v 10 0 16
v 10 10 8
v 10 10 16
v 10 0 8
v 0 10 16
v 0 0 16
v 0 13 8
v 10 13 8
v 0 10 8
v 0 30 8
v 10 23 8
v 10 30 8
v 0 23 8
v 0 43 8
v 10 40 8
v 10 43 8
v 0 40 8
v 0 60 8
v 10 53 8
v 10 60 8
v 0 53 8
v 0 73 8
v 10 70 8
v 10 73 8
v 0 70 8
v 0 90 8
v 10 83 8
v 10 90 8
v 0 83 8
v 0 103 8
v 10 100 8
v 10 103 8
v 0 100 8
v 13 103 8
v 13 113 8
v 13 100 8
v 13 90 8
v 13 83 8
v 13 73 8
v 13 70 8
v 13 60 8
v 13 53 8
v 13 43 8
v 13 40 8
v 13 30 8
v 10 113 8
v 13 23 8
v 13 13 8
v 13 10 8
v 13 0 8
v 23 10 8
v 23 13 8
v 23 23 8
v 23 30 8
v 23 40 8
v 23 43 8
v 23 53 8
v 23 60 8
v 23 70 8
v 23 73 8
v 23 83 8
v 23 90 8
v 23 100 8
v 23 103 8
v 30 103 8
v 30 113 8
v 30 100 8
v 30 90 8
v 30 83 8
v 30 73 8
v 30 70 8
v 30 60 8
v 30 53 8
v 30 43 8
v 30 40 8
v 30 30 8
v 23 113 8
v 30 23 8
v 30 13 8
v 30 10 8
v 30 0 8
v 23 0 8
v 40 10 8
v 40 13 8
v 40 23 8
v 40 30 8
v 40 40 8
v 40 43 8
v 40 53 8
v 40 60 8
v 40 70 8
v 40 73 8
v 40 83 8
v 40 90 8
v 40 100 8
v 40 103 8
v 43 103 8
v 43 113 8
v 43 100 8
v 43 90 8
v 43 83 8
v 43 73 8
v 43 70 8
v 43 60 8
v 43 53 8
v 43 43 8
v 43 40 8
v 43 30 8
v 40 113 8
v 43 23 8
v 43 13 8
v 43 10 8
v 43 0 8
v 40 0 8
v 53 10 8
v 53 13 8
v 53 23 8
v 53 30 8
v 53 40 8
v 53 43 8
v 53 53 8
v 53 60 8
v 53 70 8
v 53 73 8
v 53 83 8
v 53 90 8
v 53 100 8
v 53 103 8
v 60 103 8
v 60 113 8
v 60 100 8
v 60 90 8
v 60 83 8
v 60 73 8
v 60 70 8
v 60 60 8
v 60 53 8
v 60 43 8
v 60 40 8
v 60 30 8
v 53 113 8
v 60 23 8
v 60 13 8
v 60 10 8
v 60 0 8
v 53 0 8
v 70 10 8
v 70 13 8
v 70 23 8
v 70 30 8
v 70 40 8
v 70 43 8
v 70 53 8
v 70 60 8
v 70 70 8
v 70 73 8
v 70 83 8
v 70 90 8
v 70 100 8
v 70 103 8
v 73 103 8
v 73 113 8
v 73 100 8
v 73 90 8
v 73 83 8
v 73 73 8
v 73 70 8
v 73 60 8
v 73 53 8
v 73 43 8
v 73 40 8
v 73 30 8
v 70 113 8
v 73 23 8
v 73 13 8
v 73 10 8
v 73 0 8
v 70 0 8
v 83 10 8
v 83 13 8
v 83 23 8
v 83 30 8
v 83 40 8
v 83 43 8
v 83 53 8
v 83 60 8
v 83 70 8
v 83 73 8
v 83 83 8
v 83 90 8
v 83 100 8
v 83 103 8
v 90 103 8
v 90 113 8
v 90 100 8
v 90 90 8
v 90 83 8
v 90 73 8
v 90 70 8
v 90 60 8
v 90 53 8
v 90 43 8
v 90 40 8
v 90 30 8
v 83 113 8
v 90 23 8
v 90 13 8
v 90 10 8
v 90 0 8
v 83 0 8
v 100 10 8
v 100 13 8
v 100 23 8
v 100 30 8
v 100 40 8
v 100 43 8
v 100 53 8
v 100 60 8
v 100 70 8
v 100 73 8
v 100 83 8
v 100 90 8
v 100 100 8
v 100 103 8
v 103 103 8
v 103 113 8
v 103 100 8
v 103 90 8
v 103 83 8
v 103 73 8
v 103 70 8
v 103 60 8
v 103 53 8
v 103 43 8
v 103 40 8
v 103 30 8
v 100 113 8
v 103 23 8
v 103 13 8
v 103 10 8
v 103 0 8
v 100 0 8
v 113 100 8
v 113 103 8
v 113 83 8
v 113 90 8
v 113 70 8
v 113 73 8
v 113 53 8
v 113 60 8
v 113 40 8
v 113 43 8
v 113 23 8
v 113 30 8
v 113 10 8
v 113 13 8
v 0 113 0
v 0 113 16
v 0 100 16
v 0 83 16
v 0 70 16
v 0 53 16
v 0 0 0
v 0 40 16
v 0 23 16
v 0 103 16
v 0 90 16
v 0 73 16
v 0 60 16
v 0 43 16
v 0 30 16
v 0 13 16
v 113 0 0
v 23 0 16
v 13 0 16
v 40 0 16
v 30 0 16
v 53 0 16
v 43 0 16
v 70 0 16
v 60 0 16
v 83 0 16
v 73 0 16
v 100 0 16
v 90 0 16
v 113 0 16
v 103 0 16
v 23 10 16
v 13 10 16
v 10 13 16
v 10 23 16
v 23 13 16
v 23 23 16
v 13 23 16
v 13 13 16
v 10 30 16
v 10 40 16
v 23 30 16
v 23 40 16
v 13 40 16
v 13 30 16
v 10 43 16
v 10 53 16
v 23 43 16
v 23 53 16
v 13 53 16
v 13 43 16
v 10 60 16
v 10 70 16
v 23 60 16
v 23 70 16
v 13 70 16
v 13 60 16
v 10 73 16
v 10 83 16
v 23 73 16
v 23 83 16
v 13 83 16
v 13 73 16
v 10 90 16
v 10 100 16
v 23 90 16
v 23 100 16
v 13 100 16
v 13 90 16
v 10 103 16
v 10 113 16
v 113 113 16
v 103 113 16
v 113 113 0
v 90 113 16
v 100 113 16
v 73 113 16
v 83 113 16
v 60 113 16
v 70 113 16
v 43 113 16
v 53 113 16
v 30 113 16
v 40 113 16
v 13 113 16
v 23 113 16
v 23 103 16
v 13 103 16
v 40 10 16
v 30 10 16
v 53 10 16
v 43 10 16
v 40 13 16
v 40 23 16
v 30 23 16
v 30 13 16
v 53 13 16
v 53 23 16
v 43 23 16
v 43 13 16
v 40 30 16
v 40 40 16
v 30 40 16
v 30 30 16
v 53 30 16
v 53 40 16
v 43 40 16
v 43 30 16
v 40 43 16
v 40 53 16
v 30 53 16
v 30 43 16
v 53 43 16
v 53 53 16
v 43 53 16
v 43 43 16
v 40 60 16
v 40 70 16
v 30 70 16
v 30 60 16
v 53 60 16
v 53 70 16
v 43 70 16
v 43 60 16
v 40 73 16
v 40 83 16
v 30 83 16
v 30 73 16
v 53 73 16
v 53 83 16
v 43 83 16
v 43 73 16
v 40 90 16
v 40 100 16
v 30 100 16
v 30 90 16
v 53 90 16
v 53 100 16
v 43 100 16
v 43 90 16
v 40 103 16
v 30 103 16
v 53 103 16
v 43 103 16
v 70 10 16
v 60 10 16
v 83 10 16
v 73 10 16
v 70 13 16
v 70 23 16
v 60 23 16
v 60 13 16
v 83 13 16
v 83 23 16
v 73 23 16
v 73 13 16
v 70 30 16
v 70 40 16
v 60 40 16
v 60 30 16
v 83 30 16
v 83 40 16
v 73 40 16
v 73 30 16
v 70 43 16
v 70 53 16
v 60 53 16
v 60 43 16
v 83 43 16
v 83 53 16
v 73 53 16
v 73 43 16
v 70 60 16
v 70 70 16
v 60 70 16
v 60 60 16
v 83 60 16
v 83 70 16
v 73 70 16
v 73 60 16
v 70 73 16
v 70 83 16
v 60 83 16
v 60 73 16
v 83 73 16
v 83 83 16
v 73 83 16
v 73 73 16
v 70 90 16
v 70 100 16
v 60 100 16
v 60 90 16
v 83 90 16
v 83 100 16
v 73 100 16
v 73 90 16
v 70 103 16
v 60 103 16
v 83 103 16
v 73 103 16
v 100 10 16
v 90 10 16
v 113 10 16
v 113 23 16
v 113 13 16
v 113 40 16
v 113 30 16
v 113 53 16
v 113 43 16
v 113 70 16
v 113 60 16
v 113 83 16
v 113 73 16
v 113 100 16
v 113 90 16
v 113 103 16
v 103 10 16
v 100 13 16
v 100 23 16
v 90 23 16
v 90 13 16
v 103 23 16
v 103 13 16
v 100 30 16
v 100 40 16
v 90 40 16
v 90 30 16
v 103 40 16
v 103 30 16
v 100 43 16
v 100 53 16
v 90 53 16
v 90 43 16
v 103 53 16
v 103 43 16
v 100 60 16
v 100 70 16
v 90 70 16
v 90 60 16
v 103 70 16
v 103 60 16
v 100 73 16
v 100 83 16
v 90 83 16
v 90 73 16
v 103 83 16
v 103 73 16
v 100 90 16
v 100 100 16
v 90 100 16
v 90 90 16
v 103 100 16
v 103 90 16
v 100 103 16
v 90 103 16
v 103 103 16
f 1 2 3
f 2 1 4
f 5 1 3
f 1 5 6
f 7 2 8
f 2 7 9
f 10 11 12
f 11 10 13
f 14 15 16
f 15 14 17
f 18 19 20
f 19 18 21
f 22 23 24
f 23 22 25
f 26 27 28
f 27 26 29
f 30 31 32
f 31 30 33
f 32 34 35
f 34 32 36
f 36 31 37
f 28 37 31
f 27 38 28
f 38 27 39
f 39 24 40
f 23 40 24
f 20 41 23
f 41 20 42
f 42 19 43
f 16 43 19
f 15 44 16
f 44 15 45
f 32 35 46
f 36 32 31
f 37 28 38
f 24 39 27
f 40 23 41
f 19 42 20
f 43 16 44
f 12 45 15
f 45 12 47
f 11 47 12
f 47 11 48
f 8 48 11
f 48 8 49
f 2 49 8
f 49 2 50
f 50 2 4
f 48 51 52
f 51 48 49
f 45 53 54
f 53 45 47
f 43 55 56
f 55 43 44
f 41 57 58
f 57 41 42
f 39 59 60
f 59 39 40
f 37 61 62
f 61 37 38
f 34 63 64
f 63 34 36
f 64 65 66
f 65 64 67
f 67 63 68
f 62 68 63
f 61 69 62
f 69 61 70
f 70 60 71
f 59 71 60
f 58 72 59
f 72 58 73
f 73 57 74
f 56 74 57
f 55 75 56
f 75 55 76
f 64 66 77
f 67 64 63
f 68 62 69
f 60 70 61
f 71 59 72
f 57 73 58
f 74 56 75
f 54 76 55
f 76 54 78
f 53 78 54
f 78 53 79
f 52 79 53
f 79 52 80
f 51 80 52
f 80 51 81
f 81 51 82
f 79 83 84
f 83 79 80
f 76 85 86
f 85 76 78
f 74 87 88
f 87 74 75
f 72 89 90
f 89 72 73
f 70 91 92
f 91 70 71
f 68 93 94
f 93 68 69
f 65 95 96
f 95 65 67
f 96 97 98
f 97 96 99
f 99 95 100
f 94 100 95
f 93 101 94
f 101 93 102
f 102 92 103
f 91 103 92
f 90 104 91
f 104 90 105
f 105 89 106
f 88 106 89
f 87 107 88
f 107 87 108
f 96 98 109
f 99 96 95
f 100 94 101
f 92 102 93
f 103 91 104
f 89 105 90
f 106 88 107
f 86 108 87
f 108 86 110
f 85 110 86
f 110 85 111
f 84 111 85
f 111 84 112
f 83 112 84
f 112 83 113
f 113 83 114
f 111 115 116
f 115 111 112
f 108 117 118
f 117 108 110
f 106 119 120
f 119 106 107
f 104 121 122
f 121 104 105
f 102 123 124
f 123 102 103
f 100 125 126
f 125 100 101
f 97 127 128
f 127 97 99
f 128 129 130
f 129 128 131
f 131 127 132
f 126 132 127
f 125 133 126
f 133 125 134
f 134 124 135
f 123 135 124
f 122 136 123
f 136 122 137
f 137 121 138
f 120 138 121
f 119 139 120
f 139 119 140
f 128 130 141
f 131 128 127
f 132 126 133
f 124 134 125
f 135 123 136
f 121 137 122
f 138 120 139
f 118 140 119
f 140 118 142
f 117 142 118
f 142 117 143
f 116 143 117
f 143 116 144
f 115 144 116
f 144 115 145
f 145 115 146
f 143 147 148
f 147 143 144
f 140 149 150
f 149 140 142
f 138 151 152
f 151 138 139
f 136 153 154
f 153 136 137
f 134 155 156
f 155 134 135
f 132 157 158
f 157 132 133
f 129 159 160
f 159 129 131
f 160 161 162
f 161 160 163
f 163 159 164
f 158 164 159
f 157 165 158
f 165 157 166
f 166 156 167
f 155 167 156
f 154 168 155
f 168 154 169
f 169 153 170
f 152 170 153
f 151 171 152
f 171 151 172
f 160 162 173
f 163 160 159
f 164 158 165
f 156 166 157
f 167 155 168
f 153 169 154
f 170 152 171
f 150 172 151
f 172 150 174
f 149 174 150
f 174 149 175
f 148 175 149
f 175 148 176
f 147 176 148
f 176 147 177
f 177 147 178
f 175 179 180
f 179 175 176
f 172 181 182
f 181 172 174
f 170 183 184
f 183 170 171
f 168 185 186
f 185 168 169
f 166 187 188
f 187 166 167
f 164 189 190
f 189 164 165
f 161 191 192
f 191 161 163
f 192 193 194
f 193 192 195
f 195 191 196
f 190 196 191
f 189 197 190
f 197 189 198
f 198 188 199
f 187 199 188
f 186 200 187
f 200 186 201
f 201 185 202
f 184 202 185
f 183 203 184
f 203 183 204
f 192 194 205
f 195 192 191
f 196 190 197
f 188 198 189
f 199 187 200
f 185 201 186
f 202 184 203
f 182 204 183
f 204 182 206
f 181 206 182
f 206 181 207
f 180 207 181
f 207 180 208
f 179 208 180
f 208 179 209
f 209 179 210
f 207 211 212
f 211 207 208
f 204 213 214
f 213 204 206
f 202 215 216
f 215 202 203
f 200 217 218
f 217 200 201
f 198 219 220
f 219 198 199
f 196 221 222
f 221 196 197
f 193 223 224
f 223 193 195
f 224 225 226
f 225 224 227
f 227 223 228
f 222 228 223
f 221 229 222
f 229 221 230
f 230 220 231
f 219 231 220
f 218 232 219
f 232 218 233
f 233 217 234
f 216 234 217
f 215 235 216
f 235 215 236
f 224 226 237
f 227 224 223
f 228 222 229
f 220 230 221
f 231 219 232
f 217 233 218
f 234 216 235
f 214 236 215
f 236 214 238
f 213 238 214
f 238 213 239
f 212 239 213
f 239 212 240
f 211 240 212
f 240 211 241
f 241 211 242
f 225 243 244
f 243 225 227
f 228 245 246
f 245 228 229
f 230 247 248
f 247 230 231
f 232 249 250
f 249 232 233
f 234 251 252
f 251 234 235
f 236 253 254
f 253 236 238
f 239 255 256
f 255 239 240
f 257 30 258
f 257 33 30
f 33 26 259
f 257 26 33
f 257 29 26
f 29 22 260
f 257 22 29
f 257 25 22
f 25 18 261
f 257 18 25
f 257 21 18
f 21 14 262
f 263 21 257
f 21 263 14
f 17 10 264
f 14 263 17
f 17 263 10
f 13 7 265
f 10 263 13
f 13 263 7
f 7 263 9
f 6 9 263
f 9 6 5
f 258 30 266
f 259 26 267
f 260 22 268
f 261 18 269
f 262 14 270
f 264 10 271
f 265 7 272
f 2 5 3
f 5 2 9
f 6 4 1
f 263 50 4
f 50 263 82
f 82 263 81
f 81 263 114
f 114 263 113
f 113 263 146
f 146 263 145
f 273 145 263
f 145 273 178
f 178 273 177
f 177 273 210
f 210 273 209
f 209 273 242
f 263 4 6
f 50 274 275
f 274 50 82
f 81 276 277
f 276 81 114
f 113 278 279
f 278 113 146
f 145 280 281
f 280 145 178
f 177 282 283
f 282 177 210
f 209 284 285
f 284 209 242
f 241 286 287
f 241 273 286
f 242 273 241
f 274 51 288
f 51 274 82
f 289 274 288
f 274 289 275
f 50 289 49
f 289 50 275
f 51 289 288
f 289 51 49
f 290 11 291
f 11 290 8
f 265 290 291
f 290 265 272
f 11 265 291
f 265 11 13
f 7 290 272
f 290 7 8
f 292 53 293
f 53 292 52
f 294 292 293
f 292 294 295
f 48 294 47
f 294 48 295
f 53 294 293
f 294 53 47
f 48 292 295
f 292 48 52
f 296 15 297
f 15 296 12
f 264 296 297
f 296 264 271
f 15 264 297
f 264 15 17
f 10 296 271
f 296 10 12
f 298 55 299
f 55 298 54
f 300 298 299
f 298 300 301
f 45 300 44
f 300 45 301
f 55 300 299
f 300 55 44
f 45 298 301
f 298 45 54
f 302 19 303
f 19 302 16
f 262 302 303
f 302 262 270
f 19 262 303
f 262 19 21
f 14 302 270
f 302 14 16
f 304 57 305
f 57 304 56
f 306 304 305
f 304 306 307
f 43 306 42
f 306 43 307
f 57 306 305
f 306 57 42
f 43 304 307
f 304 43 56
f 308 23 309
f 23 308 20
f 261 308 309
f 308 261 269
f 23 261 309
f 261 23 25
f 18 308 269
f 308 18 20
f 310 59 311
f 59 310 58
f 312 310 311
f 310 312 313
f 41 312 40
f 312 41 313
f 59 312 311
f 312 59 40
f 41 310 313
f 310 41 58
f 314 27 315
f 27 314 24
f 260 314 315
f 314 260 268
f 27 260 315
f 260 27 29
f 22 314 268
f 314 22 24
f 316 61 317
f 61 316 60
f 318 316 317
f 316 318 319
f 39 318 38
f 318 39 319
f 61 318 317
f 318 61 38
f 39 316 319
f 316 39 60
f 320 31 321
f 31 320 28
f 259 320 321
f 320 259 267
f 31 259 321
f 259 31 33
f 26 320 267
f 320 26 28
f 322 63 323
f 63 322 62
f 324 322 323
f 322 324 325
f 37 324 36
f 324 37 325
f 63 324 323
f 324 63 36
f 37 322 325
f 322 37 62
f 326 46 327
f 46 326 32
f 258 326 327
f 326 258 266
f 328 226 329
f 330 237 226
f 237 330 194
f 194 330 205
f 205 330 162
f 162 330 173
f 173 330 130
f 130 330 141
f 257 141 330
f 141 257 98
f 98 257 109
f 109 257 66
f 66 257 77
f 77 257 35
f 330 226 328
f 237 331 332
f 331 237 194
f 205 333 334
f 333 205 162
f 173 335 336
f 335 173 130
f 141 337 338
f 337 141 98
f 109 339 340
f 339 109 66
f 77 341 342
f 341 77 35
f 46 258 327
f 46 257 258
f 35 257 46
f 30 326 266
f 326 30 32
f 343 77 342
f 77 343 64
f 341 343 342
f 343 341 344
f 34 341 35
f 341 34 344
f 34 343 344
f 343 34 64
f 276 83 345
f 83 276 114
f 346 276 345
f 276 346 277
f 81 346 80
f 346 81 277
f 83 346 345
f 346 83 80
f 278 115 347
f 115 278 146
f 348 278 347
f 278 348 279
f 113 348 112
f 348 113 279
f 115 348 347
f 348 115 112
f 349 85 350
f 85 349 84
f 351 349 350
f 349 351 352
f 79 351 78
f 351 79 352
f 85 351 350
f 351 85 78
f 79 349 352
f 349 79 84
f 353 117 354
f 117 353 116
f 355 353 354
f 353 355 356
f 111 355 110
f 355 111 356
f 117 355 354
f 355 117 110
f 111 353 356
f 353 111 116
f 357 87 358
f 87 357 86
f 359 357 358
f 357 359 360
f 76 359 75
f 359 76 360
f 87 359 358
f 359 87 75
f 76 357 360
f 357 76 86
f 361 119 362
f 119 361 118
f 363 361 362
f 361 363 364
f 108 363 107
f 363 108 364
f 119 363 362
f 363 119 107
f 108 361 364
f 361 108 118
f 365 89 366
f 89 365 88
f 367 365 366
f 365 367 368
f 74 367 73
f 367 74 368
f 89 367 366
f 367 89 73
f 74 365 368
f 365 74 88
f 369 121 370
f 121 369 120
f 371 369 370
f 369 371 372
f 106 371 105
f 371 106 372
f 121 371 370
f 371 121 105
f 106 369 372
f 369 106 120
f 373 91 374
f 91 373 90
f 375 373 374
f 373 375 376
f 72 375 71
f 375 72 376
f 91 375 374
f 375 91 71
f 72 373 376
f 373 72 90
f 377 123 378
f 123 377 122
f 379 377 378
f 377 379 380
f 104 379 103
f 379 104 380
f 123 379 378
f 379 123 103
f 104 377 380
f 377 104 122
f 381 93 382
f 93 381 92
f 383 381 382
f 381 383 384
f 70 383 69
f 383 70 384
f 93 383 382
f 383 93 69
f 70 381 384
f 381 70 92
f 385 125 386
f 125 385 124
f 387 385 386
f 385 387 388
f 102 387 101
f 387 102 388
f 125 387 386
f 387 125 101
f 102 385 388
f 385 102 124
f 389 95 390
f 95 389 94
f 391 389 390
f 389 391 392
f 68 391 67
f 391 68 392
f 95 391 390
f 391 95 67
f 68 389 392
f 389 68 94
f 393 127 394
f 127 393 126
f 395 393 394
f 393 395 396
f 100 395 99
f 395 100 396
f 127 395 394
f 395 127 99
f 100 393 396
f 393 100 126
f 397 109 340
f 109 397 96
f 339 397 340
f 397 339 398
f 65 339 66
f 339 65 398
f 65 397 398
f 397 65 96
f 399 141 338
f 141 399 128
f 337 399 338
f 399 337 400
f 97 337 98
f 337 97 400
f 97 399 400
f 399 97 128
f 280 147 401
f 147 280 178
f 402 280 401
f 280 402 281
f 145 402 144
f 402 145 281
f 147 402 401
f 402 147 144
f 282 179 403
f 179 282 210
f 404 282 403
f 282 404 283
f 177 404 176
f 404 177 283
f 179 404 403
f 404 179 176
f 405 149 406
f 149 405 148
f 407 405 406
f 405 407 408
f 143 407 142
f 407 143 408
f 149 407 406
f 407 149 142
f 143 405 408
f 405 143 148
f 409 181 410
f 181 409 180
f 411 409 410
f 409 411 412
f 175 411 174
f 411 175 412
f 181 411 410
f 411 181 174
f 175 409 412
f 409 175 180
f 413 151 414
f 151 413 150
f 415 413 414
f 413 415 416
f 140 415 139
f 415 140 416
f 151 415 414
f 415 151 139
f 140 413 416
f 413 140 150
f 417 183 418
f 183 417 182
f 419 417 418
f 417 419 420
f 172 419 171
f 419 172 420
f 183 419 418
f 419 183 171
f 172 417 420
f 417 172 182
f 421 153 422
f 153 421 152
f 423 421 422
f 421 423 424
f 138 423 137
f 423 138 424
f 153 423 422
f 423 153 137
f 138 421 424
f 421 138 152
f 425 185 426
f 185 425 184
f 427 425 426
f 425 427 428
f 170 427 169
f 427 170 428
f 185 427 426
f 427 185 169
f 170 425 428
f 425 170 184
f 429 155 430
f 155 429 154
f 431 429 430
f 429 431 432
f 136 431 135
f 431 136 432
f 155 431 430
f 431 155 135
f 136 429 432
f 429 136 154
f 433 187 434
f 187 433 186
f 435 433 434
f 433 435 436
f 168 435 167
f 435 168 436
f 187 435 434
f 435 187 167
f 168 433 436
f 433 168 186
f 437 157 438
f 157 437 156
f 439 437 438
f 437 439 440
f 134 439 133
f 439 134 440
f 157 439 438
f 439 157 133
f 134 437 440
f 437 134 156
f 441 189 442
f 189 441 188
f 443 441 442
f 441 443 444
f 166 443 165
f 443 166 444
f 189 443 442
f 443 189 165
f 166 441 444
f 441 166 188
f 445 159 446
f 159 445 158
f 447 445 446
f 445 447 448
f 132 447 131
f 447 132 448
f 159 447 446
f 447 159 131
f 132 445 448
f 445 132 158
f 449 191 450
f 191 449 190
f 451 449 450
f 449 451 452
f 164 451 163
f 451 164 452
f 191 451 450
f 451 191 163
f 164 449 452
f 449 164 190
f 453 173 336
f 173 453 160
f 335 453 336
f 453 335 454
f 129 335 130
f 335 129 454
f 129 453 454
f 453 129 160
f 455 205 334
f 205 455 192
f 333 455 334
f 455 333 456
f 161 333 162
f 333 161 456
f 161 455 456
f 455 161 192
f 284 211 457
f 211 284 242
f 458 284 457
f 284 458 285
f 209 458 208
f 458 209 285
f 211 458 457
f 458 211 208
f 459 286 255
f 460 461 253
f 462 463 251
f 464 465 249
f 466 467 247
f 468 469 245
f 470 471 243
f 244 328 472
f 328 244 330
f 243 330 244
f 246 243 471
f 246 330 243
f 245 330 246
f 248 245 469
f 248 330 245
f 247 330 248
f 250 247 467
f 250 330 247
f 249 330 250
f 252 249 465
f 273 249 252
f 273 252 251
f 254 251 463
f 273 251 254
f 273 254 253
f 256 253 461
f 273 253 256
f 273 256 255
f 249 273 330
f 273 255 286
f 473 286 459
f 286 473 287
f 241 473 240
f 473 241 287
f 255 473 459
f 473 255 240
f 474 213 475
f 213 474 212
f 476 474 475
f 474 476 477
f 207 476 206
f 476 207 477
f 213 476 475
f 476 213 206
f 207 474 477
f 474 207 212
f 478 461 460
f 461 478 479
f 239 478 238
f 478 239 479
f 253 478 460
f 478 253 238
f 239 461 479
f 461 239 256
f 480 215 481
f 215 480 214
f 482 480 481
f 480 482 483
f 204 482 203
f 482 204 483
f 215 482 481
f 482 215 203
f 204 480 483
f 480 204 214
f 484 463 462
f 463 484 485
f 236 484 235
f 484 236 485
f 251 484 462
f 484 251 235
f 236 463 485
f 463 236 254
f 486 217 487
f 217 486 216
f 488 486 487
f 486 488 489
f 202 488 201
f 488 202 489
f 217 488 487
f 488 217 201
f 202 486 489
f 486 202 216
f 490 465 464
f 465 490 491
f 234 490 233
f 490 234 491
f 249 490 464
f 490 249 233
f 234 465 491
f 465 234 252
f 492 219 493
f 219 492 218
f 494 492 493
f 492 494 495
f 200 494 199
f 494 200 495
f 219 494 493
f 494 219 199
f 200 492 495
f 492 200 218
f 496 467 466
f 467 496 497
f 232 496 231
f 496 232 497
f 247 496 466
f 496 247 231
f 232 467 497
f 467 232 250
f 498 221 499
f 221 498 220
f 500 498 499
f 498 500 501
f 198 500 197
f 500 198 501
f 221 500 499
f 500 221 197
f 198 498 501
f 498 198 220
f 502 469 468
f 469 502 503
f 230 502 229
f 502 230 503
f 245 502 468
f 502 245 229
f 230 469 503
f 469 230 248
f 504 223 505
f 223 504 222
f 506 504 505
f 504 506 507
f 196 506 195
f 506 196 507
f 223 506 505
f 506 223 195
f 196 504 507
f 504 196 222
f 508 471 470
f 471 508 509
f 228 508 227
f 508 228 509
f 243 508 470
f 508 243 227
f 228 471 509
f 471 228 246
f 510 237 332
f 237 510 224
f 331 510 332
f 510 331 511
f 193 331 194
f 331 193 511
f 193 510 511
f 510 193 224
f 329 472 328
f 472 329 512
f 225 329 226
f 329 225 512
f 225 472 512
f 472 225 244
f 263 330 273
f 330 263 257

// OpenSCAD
module fourBlocks() {
    cube([10,10,8]);
    translate([10+3,0,0]) cube([10,10,8]);
    translate([0,10+3,0]) cube([10,10,8]);
    translate([10+3,10+3,0]) cube([10,10,8]);
}

cube([113,113,8]);

for (i=[0:30:90]) {
    for (j=[0:30:90]) {
        translate([i,j,8])
        fourBlocks();
    }
}
